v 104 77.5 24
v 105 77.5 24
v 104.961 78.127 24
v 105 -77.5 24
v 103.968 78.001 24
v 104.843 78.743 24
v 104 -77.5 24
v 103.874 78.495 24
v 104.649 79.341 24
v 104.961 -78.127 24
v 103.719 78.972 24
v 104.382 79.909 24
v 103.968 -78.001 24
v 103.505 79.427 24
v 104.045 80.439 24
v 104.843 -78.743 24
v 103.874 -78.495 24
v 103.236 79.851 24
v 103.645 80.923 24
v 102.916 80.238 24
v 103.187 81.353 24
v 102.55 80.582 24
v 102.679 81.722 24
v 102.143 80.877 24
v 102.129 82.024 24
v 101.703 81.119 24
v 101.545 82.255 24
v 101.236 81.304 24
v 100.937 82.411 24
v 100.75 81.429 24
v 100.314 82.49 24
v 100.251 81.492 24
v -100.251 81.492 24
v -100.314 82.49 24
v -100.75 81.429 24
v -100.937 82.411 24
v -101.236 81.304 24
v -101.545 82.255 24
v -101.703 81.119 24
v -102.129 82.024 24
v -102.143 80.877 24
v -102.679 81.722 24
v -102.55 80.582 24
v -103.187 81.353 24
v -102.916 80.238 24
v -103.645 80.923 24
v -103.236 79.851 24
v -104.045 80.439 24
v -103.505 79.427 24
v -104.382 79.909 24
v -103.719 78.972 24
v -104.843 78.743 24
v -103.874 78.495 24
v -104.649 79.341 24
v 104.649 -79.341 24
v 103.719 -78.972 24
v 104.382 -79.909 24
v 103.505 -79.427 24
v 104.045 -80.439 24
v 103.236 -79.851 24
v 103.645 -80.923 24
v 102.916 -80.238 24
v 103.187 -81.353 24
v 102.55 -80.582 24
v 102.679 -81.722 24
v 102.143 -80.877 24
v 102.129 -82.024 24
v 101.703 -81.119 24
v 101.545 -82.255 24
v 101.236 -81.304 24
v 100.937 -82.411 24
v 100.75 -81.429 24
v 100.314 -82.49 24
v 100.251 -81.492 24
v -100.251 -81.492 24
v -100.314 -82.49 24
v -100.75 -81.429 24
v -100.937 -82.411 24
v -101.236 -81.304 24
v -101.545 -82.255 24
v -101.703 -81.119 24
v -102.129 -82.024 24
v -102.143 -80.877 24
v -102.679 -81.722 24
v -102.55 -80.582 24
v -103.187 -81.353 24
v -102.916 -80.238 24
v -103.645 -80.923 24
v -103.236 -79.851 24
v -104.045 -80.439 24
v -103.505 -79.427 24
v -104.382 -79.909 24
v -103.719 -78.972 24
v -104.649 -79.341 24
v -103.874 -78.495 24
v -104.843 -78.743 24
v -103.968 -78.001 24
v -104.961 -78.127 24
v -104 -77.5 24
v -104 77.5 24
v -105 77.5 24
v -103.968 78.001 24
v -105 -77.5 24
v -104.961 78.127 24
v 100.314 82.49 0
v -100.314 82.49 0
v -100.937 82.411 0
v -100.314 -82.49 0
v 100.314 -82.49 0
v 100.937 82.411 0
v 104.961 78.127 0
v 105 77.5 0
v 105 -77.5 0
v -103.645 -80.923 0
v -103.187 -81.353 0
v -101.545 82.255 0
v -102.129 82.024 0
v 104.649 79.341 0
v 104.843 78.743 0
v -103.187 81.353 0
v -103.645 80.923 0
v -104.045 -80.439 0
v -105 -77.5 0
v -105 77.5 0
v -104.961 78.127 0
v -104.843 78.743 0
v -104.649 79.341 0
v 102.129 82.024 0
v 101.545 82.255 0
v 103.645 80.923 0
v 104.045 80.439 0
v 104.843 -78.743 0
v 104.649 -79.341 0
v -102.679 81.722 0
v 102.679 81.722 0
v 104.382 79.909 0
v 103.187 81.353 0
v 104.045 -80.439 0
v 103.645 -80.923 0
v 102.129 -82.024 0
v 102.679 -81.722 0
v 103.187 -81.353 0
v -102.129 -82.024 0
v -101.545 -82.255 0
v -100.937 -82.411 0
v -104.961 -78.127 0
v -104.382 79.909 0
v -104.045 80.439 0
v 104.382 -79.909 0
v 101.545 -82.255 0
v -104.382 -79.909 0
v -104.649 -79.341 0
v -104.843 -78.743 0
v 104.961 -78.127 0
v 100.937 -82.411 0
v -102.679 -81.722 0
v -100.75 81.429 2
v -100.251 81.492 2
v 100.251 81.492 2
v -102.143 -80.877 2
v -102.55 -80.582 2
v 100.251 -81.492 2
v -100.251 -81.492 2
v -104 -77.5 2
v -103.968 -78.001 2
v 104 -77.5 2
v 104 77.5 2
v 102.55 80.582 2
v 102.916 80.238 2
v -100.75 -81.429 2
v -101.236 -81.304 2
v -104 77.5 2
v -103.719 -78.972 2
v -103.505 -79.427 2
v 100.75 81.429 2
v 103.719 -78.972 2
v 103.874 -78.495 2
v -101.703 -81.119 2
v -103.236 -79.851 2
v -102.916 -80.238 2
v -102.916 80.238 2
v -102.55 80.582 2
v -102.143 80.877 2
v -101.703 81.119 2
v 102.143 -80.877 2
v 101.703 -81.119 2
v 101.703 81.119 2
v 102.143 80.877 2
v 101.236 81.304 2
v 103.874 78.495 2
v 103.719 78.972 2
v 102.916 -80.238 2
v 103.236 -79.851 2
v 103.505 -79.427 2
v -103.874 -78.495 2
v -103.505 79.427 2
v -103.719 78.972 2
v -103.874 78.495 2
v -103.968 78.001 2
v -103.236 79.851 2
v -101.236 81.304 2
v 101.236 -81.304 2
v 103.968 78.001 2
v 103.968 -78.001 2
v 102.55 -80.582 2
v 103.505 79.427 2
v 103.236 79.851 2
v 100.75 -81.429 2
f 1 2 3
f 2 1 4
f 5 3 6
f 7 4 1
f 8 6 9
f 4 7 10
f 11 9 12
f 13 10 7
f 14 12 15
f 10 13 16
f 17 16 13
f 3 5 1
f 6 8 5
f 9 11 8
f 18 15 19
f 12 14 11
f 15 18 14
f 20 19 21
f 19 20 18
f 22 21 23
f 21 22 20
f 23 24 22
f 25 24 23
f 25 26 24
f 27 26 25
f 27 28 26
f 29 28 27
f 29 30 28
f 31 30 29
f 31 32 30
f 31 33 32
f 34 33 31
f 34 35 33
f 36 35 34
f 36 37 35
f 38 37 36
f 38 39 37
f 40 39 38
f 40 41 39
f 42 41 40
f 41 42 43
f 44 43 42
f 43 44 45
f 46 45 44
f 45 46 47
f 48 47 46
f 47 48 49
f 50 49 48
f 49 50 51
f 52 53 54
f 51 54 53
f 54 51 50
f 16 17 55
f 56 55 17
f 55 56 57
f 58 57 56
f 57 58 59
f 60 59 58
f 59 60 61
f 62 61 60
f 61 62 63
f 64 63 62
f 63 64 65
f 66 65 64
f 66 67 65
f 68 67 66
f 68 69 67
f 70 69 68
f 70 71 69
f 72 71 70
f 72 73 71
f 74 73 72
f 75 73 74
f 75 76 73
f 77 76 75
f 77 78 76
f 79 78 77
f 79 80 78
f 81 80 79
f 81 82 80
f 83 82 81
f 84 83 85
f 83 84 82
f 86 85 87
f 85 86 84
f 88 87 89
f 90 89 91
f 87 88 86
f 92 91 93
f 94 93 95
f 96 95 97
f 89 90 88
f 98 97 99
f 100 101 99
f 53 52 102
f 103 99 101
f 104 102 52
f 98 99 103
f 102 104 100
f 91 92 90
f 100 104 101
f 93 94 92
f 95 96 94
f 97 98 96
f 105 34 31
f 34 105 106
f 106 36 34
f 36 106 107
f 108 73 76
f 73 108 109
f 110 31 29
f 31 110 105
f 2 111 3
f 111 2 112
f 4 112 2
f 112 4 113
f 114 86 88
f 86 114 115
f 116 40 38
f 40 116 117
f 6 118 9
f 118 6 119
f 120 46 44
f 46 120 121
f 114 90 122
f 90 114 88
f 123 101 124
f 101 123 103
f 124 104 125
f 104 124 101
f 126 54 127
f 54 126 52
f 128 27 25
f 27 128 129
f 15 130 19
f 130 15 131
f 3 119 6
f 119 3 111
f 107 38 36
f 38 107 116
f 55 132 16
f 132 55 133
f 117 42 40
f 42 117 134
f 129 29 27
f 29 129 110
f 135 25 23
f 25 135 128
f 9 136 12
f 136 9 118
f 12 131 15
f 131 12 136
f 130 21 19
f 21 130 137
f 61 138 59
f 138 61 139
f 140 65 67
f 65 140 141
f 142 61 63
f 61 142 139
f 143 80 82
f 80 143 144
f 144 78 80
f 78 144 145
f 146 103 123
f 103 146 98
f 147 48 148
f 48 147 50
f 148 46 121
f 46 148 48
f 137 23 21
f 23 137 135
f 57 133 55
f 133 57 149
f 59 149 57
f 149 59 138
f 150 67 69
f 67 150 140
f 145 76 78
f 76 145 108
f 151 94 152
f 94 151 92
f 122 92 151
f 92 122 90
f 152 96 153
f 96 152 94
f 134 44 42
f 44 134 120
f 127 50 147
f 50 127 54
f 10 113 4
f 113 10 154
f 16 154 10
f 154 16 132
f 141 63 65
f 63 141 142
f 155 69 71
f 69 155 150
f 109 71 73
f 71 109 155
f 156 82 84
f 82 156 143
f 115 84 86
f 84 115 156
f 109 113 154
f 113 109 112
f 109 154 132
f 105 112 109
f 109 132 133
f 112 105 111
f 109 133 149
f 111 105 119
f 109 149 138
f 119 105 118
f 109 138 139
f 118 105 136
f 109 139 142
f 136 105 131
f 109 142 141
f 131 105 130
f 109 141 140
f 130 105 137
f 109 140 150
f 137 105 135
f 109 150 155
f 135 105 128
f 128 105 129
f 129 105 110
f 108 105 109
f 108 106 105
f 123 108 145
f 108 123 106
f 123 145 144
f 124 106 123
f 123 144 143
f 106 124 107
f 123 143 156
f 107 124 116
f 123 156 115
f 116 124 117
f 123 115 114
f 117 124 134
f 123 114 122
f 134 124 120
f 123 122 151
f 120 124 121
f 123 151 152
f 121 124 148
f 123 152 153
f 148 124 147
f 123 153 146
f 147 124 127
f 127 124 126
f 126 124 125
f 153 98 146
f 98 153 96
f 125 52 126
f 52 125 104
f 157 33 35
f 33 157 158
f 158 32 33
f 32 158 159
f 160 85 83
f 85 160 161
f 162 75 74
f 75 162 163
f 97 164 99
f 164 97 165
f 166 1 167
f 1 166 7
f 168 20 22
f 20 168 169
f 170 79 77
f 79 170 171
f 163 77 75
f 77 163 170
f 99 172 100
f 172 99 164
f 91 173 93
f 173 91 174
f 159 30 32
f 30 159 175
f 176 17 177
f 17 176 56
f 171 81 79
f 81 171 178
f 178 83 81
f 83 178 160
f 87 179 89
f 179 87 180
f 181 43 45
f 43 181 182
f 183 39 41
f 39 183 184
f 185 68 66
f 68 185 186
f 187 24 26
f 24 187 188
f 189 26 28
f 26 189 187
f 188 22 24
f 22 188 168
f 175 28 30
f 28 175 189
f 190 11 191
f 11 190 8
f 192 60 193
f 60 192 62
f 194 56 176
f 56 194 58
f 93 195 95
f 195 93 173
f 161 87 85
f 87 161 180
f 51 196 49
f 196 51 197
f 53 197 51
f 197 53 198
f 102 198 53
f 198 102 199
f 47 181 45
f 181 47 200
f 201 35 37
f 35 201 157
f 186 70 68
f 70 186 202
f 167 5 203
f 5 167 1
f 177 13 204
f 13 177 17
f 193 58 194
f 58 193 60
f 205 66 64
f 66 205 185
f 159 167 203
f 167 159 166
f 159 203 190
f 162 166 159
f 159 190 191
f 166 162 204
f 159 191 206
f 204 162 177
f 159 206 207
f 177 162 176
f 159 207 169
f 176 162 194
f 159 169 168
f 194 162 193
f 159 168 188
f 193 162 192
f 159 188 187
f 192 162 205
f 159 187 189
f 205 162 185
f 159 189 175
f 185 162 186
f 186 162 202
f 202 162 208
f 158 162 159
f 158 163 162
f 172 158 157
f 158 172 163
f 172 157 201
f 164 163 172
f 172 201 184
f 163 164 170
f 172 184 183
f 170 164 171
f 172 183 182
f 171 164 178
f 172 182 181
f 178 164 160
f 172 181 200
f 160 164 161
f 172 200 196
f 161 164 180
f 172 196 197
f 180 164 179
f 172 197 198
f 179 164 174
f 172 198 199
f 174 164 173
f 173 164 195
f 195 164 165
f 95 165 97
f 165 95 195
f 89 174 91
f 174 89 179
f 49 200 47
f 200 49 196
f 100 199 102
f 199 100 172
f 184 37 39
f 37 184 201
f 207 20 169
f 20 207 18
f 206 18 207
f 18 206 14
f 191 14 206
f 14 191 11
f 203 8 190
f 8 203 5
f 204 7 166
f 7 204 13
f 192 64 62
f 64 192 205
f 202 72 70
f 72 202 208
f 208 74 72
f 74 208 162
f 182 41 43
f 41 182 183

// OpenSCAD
$fn = 50;


difference() {
	union() {
		hull() {
			translate(v = [-100.0000000000, 77.5000000000, 0]) {
				cylinder(h = 24, r = 5);
			}
			translate(v = [100.0000000000, 77.5000000000, 0]) {
				cylinder(h = 24, r = 5);
			}
			translate(v = [-100.0000000000, -77.5000000000, 0]) {
				cylinder(h = 24, r = 5);
			}
			translate(v = [100.0000000000, -77.5000000000, 0]) {
				cylinder(h = 24, r = 5);
			}
		}
	}
	union() {
		translate(v = [0, 0, 2]) {
			hull() {
				translate(v = [-100.0000000000, 77.5000000000, 0]) {
					cylinder(h = 22, r = 4);
				}
				translate(v = [100.0000000000, 77.5000000000, 0]) {
					cylinder(h = 22, r = 4);
				}
				translate(v = [-100.0000000000, -77.5000000000, 0]) {
					cylinder(h = 22, r = 4);
				}
				translate(v = [100.0000000000, -77.5000000000, 0]) {
					cylinder(h = 22, r = 4);
				}
			}
		}
	}
}
